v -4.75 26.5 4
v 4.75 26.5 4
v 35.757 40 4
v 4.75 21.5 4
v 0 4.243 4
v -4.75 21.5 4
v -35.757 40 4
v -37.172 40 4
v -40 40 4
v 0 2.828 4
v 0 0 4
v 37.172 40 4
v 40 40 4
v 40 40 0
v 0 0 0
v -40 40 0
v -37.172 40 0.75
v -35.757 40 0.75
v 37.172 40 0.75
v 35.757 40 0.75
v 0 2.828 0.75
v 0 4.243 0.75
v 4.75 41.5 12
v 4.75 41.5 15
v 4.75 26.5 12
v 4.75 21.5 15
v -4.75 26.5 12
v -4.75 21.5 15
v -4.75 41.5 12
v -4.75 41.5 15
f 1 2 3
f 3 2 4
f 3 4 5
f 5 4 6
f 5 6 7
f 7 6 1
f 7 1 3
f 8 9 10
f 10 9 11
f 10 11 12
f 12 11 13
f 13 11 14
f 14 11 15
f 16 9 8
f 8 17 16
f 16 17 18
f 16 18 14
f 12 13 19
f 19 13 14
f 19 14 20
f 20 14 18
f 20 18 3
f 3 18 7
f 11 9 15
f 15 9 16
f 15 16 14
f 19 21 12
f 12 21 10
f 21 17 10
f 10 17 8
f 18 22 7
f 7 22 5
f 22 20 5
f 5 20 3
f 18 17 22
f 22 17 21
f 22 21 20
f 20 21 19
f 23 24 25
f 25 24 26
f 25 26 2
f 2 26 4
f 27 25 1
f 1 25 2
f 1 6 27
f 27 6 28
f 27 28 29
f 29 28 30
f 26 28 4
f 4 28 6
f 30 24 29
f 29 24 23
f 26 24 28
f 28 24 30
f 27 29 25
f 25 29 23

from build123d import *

# Parameters (mm, degrees)
BOSS_EXTRUDE1_DEPTH = 4
CUT_EXTRUDE2_DEPTH  = 3.25
SKETCH5_W           = 9.5
SKETCH5_H           = 5
BOSS_EXTRUDE2_DEPTH = 8
SKETCH6_W           = 9.5
SKETCH6_H           = 20
BOSS_EXTRUDE3_DEPTH = 3


with BuildPart() as part:
    # Sketch1 → Boss-Extrude1 (new body)
    with BuildSketch(Plane.XY):
        Polygon((0, 0), (40, 40), (-40, 40), align=None)
    extrude(amount=BOSS_EXTRUDE1_DEPTH)

    # Sketch2 → Cut-Extrude2 (cut)
    with BuildSketch(Plane.XY.offset(4)):
        Polygon((0, 2.828427125), (-37.171572875, 40), (-35.757359313, 40), (0, 4.242640687), (35.757359313, 40), (37.171572875, 40), align=None)
    extrude(amount=-CUT_EXTRUDE2_DEPTH, mode=Mode.SUBTRACT)

    # Sketch5 → Boss-Extrude2 (add)
    with BuildSketch(Plane.XY.offset(4)):
        with Locations((0, 24)):
            Rectangle(SKETCH5_W, SKETCH5_H)
    extrude(amount=BOSS_EXTRUDE2_DEPTH)

    # Sketch6 → Boss-Extrude3 (add)
    with BuildSketch(Plane.XY.offset(12)):
        with Locations((0, 31.5)):
            Rectangle(SKETCH6_W, SKETCH6_H)
    extrude(amount=BOSS_EXTRUDE3_DEPTH)


solid = part.part
